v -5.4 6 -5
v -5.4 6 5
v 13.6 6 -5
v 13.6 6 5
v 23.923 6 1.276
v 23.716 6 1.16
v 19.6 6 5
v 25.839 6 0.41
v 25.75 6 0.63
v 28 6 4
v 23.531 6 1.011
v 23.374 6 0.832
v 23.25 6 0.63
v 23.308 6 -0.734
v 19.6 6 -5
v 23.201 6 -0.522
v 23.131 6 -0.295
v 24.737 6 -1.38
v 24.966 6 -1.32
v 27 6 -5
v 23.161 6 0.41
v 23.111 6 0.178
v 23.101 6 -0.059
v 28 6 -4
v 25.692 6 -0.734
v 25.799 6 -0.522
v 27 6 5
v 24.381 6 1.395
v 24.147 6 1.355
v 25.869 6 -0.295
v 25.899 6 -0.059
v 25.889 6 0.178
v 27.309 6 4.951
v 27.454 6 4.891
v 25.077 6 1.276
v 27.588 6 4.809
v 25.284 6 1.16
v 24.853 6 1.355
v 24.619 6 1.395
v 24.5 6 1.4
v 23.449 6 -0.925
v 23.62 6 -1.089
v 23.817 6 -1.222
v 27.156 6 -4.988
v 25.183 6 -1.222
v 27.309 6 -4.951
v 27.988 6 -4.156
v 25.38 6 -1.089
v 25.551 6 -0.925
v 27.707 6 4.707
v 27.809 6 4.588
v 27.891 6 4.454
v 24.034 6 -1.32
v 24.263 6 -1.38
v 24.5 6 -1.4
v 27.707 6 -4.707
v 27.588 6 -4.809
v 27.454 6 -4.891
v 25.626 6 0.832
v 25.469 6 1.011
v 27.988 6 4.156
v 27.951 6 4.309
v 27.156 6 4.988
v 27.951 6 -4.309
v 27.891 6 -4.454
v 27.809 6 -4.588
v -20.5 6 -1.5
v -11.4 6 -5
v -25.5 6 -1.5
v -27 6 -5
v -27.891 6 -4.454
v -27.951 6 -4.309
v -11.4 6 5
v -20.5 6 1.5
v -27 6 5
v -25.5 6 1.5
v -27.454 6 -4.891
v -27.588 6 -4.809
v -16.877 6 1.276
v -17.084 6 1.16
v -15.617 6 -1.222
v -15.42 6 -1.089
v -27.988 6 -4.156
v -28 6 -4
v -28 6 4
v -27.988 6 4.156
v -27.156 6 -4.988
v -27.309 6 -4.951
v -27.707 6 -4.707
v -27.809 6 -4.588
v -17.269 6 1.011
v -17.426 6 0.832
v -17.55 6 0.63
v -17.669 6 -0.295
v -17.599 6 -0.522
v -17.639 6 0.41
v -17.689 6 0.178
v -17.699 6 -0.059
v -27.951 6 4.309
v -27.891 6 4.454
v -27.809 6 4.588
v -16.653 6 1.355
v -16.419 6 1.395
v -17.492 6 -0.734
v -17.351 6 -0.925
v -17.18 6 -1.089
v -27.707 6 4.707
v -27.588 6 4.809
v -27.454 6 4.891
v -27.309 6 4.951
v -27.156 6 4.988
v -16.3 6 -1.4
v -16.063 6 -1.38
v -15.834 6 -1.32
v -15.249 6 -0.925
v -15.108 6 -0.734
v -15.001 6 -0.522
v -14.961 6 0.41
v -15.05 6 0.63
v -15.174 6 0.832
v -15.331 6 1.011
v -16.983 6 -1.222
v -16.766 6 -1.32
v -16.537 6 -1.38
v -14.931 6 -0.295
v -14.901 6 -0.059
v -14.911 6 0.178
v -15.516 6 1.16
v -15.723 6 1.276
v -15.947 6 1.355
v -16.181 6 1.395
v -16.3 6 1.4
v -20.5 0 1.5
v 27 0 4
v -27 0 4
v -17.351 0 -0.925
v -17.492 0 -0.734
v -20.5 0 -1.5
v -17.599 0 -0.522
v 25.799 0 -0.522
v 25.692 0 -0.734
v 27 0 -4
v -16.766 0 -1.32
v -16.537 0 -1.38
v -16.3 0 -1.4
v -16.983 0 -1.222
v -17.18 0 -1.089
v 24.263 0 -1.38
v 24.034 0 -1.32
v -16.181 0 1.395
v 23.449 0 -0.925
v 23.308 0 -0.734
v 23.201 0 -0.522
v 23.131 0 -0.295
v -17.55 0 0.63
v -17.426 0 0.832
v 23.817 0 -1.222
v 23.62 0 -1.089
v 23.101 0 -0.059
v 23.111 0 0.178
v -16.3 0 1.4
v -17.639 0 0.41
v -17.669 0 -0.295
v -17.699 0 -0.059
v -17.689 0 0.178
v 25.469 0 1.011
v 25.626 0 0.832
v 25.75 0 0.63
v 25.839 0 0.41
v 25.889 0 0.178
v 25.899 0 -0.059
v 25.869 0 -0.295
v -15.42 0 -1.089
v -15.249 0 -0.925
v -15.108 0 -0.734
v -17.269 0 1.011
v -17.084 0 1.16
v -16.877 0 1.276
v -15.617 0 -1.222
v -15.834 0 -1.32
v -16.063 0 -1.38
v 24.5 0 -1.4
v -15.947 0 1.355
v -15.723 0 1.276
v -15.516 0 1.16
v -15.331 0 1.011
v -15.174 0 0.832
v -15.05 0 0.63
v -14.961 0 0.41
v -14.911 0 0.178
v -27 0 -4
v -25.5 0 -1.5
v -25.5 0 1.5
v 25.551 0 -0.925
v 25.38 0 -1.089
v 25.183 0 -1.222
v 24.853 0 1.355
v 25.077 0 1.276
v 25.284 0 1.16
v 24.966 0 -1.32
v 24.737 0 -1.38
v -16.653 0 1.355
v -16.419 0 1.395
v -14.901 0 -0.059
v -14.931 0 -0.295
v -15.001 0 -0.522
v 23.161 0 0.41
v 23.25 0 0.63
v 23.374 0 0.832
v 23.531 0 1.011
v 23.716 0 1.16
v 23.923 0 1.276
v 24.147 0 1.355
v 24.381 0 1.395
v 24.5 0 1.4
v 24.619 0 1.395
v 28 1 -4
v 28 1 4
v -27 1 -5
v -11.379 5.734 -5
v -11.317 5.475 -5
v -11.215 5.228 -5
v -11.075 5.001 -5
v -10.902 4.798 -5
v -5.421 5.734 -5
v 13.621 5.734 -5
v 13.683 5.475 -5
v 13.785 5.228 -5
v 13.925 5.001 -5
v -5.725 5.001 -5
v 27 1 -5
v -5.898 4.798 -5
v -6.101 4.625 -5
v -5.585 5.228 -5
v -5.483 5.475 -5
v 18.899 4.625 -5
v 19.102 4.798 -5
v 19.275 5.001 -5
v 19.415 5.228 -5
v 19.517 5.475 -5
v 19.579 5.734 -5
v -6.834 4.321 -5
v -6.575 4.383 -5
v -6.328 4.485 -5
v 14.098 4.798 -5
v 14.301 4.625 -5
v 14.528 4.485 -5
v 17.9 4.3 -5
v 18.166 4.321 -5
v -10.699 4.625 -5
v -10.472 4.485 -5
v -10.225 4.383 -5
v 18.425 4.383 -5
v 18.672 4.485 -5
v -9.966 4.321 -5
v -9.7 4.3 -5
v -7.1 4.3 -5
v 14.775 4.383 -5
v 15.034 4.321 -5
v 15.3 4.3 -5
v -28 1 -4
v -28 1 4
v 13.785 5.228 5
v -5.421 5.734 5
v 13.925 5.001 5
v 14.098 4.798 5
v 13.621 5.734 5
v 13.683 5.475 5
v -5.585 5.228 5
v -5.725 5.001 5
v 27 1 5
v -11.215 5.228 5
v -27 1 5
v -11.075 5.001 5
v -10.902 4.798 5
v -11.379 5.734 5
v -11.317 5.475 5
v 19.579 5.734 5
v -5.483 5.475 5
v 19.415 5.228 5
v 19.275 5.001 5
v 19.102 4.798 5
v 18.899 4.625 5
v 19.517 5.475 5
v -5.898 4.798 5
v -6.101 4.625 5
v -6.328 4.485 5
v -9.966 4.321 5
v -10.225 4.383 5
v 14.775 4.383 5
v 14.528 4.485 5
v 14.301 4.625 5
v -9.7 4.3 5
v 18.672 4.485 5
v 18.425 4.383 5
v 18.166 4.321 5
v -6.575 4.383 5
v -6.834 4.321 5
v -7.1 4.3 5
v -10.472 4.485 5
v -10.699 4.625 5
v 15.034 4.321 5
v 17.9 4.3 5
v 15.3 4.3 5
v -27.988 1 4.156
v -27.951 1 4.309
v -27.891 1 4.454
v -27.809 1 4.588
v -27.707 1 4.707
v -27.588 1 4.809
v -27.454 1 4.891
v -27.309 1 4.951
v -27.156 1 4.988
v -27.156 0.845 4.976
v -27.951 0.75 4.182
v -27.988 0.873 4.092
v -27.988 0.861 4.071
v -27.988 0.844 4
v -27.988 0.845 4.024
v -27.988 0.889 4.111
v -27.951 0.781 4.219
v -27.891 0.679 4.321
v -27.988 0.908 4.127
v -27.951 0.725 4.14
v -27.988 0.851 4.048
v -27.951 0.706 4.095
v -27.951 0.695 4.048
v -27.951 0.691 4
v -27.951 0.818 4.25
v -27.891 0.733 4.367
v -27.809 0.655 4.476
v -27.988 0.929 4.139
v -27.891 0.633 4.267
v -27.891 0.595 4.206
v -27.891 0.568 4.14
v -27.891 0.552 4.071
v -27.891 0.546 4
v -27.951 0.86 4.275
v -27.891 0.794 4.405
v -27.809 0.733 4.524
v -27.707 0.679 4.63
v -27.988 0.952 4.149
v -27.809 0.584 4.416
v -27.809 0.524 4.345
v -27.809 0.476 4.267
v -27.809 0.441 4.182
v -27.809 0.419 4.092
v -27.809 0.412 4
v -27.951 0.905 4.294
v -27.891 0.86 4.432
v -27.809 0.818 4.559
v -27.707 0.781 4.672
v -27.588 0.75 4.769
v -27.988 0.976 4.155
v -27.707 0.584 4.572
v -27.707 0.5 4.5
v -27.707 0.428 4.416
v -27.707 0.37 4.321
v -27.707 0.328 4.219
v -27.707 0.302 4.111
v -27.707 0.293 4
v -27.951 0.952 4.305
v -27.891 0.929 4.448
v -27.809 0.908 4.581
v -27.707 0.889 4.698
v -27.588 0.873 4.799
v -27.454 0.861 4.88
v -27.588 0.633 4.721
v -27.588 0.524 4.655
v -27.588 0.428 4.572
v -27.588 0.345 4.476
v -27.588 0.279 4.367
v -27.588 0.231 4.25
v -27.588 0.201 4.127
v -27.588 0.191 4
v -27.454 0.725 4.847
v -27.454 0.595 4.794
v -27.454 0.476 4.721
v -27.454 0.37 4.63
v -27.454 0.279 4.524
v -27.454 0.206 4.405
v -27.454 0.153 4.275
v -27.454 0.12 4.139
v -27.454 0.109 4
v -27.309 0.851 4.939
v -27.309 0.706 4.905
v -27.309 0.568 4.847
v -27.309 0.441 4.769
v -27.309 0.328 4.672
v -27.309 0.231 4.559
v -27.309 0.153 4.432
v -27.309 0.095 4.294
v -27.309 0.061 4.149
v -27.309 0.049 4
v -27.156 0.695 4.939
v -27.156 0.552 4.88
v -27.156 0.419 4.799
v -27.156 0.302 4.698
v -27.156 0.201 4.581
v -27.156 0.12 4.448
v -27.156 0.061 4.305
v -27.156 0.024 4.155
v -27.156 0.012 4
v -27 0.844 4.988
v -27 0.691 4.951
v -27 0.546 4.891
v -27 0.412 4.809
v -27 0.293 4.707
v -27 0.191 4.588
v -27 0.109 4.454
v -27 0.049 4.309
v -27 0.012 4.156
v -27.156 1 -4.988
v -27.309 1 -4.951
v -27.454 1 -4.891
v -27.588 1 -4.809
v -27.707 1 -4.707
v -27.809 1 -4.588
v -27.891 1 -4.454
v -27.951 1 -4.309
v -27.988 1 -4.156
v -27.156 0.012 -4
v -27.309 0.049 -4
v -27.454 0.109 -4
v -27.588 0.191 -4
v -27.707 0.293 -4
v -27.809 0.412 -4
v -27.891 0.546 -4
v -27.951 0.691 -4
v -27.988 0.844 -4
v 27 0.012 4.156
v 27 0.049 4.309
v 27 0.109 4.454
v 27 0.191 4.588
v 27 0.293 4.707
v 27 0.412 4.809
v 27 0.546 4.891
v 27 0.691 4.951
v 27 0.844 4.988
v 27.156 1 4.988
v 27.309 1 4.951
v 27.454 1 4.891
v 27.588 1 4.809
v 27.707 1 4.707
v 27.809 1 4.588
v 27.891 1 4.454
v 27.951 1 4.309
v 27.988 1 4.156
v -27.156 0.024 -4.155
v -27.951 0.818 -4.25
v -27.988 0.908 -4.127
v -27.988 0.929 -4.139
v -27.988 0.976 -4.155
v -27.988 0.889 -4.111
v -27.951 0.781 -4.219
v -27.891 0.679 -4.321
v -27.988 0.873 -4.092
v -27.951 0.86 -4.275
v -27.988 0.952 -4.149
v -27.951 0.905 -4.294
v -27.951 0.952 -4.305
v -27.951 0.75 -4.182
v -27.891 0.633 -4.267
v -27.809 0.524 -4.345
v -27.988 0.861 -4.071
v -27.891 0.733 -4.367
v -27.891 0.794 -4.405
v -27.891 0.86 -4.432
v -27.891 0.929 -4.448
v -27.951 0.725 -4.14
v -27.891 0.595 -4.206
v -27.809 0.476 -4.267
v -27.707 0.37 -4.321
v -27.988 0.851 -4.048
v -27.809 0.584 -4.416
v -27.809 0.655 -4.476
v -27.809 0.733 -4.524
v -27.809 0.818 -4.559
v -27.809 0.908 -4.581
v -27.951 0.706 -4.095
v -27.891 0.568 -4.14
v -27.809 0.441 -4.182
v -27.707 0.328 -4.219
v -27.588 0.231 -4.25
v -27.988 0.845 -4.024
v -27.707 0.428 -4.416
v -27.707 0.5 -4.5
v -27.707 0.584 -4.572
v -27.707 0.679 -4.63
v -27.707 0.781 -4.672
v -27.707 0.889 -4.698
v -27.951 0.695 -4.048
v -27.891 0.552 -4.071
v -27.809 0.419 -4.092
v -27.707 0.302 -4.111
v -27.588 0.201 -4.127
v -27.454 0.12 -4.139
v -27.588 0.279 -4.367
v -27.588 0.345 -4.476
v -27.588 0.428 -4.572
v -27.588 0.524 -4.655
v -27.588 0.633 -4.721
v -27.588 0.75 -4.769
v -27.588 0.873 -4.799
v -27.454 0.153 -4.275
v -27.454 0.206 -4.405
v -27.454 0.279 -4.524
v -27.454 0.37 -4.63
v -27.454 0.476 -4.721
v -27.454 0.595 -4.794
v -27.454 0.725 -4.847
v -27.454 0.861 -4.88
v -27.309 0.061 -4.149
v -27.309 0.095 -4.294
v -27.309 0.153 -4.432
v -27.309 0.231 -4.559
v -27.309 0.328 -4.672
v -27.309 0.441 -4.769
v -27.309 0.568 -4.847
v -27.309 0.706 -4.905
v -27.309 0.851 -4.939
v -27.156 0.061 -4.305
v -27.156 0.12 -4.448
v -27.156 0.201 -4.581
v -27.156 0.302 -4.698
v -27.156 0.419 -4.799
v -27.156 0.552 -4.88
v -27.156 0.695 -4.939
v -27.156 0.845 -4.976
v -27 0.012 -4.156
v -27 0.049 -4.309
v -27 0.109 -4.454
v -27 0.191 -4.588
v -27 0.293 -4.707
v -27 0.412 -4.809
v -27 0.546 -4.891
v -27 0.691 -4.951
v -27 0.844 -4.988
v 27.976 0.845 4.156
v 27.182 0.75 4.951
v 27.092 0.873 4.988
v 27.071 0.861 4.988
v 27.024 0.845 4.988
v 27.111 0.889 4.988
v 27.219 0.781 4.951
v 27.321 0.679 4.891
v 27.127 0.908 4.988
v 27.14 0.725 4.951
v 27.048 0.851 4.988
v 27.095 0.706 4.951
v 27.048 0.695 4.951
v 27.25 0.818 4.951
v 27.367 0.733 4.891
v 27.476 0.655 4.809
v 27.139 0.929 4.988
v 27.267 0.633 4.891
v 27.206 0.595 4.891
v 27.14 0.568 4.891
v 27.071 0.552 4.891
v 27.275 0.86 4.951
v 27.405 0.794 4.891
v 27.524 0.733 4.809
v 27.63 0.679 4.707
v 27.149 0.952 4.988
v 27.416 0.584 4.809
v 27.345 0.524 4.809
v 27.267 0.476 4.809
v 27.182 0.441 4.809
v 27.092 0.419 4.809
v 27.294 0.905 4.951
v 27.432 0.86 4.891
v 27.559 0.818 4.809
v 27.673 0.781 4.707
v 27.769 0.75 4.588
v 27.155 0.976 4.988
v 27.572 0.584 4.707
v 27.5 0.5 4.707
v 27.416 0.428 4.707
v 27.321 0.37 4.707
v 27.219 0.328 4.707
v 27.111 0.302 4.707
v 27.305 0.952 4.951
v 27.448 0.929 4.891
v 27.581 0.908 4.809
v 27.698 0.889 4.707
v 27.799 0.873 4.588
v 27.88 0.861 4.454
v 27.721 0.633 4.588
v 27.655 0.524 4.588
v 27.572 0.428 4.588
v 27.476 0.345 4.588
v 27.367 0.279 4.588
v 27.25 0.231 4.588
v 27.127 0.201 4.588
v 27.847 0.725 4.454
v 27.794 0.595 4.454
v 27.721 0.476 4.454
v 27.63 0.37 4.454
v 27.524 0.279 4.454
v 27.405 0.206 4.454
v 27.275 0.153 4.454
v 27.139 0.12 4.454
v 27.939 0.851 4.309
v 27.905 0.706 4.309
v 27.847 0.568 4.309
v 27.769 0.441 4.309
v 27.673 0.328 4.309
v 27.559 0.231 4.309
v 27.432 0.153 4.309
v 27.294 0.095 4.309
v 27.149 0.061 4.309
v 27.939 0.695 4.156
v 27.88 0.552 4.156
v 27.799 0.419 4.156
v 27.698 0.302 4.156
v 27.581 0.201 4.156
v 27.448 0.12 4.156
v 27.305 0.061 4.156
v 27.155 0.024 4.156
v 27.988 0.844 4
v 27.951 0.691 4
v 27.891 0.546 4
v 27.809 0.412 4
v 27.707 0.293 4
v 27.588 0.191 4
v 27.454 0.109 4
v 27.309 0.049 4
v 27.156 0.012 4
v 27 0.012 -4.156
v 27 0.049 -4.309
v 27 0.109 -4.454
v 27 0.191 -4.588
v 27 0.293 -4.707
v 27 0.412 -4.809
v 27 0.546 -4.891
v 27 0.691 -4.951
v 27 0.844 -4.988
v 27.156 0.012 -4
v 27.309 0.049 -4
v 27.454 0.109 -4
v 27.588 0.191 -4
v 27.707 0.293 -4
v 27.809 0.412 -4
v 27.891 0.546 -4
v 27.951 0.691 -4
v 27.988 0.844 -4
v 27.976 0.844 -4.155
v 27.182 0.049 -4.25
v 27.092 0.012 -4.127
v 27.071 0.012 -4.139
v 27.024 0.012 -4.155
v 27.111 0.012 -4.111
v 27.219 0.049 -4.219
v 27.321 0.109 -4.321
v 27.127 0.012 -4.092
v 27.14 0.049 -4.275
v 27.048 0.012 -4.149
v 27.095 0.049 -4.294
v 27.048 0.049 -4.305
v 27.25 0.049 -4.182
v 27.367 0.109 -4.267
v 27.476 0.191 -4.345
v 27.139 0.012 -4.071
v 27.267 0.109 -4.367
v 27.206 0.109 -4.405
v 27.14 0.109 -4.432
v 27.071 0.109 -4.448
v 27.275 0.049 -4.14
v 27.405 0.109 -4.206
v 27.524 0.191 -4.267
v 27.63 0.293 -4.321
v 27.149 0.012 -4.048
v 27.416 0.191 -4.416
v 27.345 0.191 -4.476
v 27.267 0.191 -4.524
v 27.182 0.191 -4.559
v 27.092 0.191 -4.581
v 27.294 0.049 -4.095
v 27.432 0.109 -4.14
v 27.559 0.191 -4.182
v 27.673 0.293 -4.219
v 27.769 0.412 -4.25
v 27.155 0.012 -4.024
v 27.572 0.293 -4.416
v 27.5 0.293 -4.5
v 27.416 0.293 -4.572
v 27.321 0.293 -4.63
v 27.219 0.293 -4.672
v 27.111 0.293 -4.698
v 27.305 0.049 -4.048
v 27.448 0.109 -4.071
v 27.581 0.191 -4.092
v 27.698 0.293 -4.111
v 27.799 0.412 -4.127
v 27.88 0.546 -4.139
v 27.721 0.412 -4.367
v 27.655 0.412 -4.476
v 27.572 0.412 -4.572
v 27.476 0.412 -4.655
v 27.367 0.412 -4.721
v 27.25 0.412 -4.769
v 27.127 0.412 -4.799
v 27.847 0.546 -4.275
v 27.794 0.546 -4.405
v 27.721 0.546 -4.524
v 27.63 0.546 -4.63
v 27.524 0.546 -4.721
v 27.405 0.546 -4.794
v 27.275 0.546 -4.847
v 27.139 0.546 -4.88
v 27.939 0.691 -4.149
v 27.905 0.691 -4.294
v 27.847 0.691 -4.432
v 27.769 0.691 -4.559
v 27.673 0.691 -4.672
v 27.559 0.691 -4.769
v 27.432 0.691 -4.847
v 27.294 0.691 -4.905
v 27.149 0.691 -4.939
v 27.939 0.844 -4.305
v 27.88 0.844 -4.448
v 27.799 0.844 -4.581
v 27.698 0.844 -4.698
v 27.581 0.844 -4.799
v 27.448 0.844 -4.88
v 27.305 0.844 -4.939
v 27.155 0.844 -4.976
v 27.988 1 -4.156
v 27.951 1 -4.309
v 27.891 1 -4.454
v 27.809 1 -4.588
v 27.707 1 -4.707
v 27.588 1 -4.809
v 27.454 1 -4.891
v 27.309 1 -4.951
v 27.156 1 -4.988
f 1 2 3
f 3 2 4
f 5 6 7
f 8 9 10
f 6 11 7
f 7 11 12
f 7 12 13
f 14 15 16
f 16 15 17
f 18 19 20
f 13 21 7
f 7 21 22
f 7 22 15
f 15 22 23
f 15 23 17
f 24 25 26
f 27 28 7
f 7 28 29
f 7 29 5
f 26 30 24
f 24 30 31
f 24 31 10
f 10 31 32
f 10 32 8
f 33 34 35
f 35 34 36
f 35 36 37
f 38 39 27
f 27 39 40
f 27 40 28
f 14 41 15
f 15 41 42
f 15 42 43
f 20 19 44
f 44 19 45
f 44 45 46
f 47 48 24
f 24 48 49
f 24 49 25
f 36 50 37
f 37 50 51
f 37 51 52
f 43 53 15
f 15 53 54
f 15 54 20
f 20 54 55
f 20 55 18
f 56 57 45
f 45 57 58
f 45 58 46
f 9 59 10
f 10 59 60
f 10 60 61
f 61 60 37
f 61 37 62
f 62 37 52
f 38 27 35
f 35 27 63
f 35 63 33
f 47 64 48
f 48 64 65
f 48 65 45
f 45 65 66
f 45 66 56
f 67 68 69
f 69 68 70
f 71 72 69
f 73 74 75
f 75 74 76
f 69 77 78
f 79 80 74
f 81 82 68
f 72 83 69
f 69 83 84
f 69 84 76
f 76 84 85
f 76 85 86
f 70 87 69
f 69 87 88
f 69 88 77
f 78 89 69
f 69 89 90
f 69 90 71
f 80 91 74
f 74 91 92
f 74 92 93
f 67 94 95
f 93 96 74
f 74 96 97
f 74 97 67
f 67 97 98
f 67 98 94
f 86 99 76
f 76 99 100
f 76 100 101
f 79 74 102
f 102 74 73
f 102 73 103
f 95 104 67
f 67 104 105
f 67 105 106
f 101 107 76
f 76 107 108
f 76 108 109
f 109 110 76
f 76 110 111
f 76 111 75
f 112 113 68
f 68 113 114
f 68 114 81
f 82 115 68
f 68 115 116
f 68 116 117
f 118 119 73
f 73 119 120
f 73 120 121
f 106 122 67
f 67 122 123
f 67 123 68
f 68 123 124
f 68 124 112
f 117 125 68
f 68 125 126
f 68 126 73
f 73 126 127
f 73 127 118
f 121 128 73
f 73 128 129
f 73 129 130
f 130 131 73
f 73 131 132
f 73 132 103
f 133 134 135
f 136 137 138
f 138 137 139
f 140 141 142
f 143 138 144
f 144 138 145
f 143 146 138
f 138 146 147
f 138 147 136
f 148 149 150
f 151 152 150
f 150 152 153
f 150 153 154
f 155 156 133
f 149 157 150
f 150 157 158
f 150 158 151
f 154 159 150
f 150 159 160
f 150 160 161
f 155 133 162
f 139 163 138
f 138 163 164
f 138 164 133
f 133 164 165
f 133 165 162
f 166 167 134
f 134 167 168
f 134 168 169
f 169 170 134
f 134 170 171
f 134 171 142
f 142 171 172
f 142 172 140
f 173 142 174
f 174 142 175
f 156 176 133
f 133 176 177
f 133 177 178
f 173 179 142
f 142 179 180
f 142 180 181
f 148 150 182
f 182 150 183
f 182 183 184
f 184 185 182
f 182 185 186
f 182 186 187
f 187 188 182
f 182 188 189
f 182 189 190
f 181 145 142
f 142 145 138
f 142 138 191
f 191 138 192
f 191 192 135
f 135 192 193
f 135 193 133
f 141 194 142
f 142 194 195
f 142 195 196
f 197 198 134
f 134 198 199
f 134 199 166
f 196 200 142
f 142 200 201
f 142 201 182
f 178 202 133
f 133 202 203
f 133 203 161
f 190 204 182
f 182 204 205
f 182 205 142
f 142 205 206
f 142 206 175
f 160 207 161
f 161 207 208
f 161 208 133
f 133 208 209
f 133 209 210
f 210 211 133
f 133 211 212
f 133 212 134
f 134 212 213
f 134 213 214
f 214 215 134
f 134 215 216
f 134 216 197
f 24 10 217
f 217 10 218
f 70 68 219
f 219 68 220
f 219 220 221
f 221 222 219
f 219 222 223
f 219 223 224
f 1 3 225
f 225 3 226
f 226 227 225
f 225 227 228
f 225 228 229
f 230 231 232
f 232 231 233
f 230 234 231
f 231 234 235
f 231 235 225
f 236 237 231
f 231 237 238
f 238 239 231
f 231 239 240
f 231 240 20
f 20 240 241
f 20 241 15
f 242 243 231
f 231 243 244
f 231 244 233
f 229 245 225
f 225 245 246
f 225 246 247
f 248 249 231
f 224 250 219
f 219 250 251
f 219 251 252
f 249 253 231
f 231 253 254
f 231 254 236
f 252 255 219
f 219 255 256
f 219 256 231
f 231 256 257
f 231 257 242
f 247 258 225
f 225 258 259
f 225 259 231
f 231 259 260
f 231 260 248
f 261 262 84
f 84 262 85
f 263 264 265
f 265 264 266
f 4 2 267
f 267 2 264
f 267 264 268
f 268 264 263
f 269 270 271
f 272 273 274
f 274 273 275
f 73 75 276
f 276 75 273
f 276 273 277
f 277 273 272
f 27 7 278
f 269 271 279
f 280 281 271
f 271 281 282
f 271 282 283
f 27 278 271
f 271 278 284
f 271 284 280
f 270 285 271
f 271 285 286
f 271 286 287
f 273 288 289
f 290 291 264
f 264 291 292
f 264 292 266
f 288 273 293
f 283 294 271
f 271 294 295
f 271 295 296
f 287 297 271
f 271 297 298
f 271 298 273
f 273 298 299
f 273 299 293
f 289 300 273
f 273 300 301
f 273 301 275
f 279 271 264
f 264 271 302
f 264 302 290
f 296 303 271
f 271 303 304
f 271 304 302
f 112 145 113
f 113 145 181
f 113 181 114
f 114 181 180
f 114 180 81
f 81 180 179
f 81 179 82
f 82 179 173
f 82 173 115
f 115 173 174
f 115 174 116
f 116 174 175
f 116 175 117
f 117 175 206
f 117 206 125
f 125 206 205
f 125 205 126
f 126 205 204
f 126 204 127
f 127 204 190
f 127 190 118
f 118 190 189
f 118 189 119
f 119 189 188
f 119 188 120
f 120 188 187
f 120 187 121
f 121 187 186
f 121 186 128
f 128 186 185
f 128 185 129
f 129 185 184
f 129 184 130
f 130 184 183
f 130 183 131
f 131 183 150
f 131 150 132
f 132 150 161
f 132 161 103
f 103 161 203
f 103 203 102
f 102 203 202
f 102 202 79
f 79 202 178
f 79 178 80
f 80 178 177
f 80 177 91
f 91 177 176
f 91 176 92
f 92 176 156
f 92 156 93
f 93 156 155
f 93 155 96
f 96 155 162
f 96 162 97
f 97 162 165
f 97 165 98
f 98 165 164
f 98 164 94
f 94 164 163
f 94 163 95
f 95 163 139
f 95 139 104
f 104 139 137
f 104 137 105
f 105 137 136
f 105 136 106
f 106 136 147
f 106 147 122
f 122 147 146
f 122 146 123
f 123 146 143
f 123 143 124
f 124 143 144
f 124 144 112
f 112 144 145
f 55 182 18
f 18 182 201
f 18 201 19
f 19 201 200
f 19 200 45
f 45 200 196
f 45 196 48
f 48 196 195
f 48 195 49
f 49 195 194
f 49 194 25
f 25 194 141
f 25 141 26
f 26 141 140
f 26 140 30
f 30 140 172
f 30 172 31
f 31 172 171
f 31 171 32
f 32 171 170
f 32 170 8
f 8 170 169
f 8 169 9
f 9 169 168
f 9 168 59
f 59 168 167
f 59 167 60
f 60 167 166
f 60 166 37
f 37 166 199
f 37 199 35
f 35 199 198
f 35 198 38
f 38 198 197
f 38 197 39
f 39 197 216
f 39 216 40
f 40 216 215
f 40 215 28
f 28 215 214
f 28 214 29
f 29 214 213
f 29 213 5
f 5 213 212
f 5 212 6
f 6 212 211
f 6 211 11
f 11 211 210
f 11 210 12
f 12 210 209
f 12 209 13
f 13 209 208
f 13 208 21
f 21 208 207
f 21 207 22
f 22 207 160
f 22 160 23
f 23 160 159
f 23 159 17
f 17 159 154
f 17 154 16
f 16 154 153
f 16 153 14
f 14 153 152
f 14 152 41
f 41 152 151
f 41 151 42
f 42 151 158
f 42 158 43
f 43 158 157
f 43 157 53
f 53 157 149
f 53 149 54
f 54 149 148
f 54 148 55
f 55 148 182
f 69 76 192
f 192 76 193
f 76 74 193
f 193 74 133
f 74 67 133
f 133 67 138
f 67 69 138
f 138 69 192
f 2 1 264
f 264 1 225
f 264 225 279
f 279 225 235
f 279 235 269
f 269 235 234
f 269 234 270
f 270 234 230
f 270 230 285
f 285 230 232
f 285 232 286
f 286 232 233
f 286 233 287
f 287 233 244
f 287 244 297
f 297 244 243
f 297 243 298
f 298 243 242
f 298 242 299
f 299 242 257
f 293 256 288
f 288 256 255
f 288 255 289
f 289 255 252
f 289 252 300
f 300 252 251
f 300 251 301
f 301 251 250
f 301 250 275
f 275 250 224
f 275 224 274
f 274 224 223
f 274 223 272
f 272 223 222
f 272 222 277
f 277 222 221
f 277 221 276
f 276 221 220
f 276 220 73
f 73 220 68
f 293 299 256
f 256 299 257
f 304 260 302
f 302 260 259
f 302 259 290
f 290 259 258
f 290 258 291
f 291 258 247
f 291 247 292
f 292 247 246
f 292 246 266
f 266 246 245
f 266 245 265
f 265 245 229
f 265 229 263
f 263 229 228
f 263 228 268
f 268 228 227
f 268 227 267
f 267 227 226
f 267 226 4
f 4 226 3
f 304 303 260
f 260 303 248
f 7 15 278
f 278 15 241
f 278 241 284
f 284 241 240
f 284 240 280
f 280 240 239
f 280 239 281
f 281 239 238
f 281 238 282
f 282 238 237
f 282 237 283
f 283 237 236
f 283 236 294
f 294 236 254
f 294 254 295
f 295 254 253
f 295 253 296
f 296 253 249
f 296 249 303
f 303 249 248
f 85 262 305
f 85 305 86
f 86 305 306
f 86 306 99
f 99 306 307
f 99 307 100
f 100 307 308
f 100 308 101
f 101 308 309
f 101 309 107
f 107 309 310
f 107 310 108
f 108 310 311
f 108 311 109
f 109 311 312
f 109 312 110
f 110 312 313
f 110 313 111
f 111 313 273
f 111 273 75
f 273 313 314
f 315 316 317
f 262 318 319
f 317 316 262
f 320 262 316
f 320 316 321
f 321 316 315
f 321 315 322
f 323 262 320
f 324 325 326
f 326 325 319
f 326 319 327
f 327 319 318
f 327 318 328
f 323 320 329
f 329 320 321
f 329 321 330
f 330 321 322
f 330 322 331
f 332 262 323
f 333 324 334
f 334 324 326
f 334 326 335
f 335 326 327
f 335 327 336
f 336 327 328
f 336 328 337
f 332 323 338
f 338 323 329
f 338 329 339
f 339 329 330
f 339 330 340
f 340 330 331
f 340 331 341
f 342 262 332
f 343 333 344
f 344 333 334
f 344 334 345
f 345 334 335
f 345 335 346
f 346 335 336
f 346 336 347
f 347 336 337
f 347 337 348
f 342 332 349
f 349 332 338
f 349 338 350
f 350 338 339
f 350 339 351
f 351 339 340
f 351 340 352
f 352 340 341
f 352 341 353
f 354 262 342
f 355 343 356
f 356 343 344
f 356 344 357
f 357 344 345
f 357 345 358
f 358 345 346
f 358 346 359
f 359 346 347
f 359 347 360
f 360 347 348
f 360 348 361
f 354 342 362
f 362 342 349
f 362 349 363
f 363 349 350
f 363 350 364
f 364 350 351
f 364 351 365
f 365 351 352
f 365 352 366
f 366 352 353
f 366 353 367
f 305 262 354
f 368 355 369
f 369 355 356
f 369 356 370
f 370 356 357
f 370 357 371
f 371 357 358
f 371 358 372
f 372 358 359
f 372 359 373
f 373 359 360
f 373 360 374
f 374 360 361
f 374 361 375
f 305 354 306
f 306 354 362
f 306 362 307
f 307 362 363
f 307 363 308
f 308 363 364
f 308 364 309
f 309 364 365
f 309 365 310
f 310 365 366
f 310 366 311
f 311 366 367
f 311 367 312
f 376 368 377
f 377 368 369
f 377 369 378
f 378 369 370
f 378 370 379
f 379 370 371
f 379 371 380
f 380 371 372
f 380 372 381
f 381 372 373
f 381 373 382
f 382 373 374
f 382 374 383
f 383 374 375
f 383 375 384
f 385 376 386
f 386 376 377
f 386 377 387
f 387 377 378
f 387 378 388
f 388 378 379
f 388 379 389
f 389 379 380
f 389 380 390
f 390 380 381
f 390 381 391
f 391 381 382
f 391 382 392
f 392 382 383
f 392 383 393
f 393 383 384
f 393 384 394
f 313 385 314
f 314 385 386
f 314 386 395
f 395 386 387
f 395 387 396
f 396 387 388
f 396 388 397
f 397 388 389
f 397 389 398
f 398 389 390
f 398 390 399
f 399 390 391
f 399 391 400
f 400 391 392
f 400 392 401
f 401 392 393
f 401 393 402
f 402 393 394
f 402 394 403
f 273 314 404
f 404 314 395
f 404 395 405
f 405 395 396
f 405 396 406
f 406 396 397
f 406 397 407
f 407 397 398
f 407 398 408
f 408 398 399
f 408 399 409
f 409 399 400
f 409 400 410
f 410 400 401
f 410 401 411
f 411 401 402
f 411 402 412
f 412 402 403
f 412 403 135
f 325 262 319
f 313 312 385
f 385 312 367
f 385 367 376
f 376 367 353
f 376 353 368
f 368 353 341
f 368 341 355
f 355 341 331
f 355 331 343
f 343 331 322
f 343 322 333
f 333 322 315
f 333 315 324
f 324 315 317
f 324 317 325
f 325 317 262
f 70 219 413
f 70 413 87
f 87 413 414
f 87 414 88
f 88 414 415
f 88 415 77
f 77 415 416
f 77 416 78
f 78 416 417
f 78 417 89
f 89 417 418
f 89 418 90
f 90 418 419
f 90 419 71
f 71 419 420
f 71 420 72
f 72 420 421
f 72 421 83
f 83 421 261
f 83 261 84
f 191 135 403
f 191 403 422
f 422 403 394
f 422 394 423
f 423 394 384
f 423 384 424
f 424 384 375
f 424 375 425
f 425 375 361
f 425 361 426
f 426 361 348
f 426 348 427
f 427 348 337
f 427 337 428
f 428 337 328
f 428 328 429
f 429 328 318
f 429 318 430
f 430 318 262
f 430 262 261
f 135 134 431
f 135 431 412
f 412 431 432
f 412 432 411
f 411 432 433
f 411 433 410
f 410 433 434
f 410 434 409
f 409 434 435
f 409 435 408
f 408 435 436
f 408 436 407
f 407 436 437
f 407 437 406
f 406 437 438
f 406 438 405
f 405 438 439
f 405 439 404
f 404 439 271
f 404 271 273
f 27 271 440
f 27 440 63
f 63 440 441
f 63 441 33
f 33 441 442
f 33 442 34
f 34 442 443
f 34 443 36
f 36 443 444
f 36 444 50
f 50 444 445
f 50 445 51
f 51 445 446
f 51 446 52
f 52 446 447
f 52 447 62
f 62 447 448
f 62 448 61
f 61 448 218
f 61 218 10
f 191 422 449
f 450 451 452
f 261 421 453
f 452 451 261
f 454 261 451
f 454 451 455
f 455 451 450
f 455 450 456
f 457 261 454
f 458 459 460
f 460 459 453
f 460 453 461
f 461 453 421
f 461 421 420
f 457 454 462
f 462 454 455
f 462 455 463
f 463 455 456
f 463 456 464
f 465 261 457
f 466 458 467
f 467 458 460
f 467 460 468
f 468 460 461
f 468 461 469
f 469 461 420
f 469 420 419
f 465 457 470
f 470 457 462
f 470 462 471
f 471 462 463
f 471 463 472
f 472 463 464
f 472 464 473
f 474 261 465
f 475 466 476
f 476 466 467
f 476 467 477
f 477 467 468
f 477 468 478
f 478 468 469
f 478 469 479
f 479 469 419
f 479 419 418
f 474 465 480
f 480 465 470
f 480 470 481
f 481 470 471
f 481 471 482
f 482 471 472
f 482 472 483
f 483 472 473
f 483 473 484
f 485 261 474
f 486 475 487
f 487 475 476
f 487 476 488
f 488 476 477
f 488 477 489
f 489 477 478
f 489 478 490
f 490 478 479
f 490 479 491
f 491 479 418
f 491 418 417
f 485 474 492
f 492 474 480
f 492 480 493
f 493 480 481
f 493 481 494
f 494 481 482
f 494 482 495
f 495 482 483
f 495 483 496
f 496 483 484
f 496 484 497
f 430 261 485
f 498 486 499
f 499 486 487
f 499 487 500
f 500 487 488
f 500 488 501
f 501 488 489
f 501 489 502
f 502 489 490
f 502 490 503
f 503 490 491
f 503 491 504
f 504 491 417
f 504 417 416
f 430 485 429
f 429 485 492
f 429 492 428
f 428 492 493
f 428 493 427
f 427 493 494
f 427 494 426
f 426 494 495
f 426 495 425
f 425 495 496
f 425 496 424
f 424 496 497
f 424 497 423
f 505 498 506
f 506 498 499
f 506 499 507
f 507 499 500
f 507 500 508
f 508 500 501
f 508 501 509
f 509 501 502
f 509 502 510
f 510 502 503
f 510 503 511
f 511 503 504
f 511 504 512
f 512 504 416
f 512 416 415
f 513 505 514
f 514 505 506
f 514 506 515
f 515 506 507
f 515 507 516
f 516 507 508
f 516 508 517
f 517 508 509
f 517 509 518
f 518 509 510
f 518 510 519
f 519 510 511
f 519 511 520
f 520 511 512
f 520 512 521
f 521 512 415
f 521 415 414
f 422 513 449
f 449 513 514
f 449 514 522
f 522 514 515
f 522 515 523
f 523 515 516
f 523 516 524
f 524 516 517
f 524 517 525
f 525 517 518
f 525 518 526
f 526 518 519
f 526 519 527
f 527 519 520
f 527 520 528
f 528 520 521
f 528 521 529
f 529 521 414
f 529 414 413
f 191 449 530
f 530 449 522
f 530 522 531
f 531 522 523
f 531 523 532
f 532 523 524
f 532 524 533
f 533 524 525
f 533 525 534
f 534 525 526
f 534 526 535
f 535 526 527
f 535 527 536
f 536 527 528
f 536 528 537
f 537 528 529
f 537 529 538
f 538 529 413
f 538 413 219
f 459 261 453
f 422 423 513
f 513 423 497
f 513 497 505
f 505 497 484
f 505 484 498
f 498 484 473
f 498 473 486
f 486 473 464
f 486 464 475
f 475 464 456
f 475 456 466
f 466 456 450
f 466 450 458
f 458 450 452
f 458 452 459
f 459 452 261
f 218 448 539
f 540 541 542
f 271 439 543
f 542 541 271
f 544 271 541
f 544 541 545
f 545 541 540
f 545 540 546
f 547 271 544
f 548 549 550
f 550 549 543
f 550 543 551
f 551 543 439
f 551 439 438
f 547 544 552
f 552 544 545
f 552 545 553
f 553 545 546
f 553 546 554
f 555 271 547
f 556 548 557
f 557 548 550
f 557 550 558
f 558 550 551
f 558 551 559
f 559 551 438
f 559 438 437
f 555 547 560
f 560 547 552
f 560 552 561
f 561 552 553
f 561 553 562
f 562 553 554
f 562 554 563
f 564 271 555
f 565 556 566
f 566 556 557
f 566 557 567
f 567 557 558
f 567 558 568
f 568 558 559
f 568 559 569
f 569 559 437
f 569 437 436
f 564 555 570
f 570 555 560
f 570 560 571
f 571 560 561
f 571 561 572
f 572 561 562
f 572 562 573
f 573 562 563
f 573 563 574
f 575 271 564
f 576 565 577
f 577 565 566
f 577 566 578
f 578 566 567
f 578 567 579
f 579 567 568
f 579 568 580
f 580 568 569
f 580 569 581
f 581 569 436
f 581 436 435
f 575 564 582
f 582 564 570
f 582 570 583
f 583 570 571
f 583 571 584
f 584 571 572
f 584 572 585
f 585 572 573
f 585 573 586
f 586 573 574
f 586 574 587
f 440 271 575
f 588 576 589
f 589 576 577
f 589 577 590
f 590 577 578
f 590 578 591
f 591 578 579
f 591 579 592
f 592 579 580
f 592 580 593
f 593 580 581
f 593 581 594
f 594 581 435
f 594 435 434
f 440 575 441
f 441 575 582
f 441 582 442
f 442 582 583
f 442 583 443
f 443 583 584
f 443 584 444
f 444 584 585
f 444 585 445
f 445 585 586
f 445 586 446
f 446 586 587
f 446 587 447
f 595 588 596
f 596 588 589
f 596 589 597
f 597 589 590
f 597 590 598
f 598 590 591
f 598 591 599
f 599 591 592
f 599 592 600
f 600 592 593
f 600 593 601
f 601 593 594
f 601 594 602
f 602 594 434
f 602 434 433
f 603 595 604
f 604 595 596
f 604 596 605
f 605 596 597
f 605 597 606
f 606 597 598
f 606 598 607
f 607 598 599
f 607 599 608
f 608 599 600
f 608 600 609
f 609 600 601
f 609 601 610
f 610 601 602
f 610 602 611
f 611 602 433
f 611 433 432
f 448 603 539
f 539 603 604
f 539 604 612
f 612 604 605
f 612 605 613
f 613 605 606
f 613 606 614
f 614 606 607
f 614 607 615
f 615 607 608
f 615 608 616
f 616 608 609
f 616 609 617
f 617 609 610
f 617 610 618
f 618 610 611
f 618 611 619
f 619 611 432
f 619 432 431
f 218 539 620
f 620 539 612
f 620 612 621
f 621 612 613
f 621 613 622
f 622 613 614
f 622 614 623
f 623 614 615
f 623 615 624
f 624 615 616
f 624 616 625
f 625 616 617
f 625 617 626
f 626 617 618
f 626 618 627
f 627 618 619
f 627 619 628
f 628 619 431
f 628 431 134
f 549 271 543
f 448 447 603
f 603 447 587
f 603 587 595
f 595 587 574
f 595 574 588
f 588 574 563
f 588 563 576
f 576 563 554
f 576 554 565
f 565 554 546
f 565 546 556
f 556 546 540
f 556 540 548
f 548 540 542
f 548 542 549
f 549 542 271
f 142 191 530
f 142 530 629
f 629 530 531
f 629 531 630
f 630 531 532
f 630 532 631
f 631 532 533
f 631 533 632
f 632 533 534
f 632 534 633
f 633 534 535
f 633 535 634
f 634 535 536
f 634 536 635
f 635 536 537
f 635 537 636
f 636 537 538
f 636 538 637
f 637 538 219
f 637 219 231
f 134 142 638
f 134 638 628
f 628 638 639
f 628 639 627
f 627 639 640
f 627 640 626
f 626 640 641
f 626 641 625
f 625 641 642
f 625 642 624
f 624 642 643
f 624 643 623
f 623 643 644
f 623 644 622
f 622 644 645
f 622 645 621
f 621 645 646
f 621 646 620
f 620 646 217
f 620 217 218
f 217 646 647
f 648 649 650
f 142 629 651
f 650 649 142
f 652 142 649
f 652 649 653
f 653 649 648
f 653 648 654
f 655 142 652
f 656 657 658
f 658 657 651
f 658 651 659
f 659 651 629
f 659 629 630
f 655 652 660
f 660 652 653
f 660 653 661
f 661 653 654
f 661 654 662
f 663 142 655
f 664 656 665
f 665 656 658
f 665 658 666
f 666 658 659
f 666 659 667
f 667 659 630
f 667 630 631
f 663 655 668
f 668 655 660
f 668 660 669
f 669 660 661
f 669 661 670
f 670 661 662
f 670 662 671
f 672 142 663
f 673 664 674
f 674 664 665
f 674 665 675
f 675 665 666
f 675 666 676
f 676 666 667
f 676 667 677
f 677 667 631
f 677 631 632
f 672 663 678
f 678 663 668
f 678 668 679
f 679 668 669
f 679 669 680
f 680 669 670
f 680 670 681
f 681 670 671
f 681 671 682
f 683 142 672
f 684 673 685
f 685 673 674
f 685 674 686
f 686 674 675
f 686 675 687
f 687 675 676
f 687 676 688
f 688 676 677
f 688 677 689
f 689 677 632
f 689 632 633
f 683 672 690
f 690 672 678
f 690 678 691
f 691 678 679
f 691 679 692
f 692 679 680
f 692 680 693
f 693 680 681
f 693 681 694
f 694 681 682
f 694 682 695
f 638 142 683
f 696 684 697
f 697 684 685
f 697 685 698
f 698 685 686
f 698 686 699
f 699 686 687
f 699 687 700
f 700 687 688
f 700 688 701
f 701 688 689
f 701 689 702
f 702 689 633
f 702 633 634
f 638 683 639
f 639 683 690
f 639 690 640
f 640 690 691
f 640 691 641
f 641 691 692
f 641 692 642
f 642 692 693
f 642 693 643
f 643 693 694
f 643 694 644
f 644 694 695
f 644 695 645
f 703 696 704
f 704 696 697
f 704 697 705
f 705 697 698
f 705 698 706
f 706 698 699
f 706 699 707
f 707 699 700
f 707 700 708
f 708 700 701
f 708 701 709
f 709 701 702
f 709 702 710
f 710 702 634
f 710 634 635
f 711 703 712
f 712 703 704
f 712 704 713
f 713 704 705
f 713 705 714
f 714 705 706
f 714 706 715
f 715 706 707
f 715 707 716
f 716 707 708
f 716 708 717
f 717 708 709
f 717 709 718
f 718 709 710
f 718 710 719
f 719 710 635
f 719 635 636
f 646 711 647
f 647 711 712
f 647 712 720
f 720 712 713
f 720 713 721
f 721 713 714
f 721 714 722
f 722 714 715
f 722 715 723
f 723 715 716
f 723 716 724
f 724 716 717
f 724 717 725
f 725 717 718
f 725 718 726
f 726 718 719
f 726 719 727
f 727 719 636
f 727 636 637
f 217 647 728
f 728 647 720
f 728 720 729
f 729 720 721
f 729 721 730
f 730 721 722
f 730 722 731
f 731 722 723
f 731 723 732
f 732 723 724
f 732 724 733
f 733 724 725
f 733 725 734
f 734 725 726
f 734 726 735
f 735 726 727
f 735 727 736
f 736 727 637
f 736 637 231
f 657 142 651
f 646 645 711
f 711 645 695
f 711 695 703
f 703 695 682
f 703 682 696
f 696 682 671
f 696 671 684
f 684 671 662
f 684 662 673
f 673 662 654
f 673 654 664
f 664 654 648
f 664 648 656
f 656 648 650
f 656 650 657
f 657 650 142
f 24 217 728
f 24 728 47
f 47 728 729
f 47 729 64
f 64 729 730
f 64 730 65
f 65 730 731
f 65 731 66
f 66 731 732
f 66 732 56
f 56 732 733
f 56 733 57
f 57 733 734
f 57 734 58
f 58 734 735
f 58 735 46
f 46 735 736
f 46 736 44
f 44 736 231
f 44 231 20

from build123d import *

# Parameters (mm, degrees)
SKETCH1_W                 = 56
SKETCH1_H                 = 10
SKETCH1_R                 = 1.4
SKETCH1_W_2               = 5
SKETCH1_H_2               = 3
BASE_DEPTH                = 6
BASKET_WIRE_GROOVES_DEPTH = 31.331501776
F_1MM_EDGE_FILLETS_R      = 1


with BuildPart() as part:
    # Sketch1 → Base (new body)
    with BuildSketch(Plane(origin=(0, 0, 0), x_dir=(1, 0, 0), z_dir=(0, 1, 0))):
        Rectangle(SKETCH1_W, SKETCH1_H)
        with Locations((-16.3, 0)):
            Circle(SKETCH1_R, mode=Mode.SUBTRACT)
        with Locations((24.5, 0)):
            Circle(SKETCH1_R, mode=Mode.SUBTRACT)
        with Locations((-23, 0)):
            Rectangle(SKETCH1_W_2, SKETCH1_H_2, mode=Mode.SUBTRACT)
    extrude(amount=BASE_DEPTH)

    # Sketch2 → Basket Wire Grooves (cut, through all)
    with BuildSketch(Plane(origin=(0, 0, -5), x_dir=(-1, 0, 0), z_dir=(0, 0, -1))):
        with BuildLine():
            Line((-13.6, 6), (-19.6, 6))
            ThreePointArc((-19.6, 6), (-19.102081528, 4.797918472), (-17.9, 4.3))
            Line((-17.9, 4.3), (-15.3, 4.3))
            ThreePointArc((-15.3, 4.3), (-14.097918472, 4.797918472), (-13.6, 6))
        make_face()
        with BuildLine():
            Line((5.4, 6), (11.4, 6))
            ThreePointArc((11.4, 6), (10.902081528, 4.797918472), (9.7, 4.3))
            Line((9.7, 4.3), (7.1, 4.3))
            ThreePointArc((7.1, 4.3), (5.897918472, 4.797918472), (5.4, 6))
        make_face()
    extrude(amount=-BASKET_WIRE_GROOVES_DEPTH, mode=Mode.SUBTRACT)

    # 1mm Edge Fillets
    f_1mm_edge_fillets_edges = [part.edges().sort_by_distance(p)[0] for p in [
        (28, 3, -5),
        (28, 3, 5),
        (-28, 3, -5),
        (-28, 3, 5),
        (-28, 0, 0),
        (0, 0, -5),
        (0, 0, 5),
        (28, 0, 0),
    ]]
    fillet(f_1mm_edge_fillets_edges, radius=F_1MM_EDGE_FILLETS_R)


solid = part.part
